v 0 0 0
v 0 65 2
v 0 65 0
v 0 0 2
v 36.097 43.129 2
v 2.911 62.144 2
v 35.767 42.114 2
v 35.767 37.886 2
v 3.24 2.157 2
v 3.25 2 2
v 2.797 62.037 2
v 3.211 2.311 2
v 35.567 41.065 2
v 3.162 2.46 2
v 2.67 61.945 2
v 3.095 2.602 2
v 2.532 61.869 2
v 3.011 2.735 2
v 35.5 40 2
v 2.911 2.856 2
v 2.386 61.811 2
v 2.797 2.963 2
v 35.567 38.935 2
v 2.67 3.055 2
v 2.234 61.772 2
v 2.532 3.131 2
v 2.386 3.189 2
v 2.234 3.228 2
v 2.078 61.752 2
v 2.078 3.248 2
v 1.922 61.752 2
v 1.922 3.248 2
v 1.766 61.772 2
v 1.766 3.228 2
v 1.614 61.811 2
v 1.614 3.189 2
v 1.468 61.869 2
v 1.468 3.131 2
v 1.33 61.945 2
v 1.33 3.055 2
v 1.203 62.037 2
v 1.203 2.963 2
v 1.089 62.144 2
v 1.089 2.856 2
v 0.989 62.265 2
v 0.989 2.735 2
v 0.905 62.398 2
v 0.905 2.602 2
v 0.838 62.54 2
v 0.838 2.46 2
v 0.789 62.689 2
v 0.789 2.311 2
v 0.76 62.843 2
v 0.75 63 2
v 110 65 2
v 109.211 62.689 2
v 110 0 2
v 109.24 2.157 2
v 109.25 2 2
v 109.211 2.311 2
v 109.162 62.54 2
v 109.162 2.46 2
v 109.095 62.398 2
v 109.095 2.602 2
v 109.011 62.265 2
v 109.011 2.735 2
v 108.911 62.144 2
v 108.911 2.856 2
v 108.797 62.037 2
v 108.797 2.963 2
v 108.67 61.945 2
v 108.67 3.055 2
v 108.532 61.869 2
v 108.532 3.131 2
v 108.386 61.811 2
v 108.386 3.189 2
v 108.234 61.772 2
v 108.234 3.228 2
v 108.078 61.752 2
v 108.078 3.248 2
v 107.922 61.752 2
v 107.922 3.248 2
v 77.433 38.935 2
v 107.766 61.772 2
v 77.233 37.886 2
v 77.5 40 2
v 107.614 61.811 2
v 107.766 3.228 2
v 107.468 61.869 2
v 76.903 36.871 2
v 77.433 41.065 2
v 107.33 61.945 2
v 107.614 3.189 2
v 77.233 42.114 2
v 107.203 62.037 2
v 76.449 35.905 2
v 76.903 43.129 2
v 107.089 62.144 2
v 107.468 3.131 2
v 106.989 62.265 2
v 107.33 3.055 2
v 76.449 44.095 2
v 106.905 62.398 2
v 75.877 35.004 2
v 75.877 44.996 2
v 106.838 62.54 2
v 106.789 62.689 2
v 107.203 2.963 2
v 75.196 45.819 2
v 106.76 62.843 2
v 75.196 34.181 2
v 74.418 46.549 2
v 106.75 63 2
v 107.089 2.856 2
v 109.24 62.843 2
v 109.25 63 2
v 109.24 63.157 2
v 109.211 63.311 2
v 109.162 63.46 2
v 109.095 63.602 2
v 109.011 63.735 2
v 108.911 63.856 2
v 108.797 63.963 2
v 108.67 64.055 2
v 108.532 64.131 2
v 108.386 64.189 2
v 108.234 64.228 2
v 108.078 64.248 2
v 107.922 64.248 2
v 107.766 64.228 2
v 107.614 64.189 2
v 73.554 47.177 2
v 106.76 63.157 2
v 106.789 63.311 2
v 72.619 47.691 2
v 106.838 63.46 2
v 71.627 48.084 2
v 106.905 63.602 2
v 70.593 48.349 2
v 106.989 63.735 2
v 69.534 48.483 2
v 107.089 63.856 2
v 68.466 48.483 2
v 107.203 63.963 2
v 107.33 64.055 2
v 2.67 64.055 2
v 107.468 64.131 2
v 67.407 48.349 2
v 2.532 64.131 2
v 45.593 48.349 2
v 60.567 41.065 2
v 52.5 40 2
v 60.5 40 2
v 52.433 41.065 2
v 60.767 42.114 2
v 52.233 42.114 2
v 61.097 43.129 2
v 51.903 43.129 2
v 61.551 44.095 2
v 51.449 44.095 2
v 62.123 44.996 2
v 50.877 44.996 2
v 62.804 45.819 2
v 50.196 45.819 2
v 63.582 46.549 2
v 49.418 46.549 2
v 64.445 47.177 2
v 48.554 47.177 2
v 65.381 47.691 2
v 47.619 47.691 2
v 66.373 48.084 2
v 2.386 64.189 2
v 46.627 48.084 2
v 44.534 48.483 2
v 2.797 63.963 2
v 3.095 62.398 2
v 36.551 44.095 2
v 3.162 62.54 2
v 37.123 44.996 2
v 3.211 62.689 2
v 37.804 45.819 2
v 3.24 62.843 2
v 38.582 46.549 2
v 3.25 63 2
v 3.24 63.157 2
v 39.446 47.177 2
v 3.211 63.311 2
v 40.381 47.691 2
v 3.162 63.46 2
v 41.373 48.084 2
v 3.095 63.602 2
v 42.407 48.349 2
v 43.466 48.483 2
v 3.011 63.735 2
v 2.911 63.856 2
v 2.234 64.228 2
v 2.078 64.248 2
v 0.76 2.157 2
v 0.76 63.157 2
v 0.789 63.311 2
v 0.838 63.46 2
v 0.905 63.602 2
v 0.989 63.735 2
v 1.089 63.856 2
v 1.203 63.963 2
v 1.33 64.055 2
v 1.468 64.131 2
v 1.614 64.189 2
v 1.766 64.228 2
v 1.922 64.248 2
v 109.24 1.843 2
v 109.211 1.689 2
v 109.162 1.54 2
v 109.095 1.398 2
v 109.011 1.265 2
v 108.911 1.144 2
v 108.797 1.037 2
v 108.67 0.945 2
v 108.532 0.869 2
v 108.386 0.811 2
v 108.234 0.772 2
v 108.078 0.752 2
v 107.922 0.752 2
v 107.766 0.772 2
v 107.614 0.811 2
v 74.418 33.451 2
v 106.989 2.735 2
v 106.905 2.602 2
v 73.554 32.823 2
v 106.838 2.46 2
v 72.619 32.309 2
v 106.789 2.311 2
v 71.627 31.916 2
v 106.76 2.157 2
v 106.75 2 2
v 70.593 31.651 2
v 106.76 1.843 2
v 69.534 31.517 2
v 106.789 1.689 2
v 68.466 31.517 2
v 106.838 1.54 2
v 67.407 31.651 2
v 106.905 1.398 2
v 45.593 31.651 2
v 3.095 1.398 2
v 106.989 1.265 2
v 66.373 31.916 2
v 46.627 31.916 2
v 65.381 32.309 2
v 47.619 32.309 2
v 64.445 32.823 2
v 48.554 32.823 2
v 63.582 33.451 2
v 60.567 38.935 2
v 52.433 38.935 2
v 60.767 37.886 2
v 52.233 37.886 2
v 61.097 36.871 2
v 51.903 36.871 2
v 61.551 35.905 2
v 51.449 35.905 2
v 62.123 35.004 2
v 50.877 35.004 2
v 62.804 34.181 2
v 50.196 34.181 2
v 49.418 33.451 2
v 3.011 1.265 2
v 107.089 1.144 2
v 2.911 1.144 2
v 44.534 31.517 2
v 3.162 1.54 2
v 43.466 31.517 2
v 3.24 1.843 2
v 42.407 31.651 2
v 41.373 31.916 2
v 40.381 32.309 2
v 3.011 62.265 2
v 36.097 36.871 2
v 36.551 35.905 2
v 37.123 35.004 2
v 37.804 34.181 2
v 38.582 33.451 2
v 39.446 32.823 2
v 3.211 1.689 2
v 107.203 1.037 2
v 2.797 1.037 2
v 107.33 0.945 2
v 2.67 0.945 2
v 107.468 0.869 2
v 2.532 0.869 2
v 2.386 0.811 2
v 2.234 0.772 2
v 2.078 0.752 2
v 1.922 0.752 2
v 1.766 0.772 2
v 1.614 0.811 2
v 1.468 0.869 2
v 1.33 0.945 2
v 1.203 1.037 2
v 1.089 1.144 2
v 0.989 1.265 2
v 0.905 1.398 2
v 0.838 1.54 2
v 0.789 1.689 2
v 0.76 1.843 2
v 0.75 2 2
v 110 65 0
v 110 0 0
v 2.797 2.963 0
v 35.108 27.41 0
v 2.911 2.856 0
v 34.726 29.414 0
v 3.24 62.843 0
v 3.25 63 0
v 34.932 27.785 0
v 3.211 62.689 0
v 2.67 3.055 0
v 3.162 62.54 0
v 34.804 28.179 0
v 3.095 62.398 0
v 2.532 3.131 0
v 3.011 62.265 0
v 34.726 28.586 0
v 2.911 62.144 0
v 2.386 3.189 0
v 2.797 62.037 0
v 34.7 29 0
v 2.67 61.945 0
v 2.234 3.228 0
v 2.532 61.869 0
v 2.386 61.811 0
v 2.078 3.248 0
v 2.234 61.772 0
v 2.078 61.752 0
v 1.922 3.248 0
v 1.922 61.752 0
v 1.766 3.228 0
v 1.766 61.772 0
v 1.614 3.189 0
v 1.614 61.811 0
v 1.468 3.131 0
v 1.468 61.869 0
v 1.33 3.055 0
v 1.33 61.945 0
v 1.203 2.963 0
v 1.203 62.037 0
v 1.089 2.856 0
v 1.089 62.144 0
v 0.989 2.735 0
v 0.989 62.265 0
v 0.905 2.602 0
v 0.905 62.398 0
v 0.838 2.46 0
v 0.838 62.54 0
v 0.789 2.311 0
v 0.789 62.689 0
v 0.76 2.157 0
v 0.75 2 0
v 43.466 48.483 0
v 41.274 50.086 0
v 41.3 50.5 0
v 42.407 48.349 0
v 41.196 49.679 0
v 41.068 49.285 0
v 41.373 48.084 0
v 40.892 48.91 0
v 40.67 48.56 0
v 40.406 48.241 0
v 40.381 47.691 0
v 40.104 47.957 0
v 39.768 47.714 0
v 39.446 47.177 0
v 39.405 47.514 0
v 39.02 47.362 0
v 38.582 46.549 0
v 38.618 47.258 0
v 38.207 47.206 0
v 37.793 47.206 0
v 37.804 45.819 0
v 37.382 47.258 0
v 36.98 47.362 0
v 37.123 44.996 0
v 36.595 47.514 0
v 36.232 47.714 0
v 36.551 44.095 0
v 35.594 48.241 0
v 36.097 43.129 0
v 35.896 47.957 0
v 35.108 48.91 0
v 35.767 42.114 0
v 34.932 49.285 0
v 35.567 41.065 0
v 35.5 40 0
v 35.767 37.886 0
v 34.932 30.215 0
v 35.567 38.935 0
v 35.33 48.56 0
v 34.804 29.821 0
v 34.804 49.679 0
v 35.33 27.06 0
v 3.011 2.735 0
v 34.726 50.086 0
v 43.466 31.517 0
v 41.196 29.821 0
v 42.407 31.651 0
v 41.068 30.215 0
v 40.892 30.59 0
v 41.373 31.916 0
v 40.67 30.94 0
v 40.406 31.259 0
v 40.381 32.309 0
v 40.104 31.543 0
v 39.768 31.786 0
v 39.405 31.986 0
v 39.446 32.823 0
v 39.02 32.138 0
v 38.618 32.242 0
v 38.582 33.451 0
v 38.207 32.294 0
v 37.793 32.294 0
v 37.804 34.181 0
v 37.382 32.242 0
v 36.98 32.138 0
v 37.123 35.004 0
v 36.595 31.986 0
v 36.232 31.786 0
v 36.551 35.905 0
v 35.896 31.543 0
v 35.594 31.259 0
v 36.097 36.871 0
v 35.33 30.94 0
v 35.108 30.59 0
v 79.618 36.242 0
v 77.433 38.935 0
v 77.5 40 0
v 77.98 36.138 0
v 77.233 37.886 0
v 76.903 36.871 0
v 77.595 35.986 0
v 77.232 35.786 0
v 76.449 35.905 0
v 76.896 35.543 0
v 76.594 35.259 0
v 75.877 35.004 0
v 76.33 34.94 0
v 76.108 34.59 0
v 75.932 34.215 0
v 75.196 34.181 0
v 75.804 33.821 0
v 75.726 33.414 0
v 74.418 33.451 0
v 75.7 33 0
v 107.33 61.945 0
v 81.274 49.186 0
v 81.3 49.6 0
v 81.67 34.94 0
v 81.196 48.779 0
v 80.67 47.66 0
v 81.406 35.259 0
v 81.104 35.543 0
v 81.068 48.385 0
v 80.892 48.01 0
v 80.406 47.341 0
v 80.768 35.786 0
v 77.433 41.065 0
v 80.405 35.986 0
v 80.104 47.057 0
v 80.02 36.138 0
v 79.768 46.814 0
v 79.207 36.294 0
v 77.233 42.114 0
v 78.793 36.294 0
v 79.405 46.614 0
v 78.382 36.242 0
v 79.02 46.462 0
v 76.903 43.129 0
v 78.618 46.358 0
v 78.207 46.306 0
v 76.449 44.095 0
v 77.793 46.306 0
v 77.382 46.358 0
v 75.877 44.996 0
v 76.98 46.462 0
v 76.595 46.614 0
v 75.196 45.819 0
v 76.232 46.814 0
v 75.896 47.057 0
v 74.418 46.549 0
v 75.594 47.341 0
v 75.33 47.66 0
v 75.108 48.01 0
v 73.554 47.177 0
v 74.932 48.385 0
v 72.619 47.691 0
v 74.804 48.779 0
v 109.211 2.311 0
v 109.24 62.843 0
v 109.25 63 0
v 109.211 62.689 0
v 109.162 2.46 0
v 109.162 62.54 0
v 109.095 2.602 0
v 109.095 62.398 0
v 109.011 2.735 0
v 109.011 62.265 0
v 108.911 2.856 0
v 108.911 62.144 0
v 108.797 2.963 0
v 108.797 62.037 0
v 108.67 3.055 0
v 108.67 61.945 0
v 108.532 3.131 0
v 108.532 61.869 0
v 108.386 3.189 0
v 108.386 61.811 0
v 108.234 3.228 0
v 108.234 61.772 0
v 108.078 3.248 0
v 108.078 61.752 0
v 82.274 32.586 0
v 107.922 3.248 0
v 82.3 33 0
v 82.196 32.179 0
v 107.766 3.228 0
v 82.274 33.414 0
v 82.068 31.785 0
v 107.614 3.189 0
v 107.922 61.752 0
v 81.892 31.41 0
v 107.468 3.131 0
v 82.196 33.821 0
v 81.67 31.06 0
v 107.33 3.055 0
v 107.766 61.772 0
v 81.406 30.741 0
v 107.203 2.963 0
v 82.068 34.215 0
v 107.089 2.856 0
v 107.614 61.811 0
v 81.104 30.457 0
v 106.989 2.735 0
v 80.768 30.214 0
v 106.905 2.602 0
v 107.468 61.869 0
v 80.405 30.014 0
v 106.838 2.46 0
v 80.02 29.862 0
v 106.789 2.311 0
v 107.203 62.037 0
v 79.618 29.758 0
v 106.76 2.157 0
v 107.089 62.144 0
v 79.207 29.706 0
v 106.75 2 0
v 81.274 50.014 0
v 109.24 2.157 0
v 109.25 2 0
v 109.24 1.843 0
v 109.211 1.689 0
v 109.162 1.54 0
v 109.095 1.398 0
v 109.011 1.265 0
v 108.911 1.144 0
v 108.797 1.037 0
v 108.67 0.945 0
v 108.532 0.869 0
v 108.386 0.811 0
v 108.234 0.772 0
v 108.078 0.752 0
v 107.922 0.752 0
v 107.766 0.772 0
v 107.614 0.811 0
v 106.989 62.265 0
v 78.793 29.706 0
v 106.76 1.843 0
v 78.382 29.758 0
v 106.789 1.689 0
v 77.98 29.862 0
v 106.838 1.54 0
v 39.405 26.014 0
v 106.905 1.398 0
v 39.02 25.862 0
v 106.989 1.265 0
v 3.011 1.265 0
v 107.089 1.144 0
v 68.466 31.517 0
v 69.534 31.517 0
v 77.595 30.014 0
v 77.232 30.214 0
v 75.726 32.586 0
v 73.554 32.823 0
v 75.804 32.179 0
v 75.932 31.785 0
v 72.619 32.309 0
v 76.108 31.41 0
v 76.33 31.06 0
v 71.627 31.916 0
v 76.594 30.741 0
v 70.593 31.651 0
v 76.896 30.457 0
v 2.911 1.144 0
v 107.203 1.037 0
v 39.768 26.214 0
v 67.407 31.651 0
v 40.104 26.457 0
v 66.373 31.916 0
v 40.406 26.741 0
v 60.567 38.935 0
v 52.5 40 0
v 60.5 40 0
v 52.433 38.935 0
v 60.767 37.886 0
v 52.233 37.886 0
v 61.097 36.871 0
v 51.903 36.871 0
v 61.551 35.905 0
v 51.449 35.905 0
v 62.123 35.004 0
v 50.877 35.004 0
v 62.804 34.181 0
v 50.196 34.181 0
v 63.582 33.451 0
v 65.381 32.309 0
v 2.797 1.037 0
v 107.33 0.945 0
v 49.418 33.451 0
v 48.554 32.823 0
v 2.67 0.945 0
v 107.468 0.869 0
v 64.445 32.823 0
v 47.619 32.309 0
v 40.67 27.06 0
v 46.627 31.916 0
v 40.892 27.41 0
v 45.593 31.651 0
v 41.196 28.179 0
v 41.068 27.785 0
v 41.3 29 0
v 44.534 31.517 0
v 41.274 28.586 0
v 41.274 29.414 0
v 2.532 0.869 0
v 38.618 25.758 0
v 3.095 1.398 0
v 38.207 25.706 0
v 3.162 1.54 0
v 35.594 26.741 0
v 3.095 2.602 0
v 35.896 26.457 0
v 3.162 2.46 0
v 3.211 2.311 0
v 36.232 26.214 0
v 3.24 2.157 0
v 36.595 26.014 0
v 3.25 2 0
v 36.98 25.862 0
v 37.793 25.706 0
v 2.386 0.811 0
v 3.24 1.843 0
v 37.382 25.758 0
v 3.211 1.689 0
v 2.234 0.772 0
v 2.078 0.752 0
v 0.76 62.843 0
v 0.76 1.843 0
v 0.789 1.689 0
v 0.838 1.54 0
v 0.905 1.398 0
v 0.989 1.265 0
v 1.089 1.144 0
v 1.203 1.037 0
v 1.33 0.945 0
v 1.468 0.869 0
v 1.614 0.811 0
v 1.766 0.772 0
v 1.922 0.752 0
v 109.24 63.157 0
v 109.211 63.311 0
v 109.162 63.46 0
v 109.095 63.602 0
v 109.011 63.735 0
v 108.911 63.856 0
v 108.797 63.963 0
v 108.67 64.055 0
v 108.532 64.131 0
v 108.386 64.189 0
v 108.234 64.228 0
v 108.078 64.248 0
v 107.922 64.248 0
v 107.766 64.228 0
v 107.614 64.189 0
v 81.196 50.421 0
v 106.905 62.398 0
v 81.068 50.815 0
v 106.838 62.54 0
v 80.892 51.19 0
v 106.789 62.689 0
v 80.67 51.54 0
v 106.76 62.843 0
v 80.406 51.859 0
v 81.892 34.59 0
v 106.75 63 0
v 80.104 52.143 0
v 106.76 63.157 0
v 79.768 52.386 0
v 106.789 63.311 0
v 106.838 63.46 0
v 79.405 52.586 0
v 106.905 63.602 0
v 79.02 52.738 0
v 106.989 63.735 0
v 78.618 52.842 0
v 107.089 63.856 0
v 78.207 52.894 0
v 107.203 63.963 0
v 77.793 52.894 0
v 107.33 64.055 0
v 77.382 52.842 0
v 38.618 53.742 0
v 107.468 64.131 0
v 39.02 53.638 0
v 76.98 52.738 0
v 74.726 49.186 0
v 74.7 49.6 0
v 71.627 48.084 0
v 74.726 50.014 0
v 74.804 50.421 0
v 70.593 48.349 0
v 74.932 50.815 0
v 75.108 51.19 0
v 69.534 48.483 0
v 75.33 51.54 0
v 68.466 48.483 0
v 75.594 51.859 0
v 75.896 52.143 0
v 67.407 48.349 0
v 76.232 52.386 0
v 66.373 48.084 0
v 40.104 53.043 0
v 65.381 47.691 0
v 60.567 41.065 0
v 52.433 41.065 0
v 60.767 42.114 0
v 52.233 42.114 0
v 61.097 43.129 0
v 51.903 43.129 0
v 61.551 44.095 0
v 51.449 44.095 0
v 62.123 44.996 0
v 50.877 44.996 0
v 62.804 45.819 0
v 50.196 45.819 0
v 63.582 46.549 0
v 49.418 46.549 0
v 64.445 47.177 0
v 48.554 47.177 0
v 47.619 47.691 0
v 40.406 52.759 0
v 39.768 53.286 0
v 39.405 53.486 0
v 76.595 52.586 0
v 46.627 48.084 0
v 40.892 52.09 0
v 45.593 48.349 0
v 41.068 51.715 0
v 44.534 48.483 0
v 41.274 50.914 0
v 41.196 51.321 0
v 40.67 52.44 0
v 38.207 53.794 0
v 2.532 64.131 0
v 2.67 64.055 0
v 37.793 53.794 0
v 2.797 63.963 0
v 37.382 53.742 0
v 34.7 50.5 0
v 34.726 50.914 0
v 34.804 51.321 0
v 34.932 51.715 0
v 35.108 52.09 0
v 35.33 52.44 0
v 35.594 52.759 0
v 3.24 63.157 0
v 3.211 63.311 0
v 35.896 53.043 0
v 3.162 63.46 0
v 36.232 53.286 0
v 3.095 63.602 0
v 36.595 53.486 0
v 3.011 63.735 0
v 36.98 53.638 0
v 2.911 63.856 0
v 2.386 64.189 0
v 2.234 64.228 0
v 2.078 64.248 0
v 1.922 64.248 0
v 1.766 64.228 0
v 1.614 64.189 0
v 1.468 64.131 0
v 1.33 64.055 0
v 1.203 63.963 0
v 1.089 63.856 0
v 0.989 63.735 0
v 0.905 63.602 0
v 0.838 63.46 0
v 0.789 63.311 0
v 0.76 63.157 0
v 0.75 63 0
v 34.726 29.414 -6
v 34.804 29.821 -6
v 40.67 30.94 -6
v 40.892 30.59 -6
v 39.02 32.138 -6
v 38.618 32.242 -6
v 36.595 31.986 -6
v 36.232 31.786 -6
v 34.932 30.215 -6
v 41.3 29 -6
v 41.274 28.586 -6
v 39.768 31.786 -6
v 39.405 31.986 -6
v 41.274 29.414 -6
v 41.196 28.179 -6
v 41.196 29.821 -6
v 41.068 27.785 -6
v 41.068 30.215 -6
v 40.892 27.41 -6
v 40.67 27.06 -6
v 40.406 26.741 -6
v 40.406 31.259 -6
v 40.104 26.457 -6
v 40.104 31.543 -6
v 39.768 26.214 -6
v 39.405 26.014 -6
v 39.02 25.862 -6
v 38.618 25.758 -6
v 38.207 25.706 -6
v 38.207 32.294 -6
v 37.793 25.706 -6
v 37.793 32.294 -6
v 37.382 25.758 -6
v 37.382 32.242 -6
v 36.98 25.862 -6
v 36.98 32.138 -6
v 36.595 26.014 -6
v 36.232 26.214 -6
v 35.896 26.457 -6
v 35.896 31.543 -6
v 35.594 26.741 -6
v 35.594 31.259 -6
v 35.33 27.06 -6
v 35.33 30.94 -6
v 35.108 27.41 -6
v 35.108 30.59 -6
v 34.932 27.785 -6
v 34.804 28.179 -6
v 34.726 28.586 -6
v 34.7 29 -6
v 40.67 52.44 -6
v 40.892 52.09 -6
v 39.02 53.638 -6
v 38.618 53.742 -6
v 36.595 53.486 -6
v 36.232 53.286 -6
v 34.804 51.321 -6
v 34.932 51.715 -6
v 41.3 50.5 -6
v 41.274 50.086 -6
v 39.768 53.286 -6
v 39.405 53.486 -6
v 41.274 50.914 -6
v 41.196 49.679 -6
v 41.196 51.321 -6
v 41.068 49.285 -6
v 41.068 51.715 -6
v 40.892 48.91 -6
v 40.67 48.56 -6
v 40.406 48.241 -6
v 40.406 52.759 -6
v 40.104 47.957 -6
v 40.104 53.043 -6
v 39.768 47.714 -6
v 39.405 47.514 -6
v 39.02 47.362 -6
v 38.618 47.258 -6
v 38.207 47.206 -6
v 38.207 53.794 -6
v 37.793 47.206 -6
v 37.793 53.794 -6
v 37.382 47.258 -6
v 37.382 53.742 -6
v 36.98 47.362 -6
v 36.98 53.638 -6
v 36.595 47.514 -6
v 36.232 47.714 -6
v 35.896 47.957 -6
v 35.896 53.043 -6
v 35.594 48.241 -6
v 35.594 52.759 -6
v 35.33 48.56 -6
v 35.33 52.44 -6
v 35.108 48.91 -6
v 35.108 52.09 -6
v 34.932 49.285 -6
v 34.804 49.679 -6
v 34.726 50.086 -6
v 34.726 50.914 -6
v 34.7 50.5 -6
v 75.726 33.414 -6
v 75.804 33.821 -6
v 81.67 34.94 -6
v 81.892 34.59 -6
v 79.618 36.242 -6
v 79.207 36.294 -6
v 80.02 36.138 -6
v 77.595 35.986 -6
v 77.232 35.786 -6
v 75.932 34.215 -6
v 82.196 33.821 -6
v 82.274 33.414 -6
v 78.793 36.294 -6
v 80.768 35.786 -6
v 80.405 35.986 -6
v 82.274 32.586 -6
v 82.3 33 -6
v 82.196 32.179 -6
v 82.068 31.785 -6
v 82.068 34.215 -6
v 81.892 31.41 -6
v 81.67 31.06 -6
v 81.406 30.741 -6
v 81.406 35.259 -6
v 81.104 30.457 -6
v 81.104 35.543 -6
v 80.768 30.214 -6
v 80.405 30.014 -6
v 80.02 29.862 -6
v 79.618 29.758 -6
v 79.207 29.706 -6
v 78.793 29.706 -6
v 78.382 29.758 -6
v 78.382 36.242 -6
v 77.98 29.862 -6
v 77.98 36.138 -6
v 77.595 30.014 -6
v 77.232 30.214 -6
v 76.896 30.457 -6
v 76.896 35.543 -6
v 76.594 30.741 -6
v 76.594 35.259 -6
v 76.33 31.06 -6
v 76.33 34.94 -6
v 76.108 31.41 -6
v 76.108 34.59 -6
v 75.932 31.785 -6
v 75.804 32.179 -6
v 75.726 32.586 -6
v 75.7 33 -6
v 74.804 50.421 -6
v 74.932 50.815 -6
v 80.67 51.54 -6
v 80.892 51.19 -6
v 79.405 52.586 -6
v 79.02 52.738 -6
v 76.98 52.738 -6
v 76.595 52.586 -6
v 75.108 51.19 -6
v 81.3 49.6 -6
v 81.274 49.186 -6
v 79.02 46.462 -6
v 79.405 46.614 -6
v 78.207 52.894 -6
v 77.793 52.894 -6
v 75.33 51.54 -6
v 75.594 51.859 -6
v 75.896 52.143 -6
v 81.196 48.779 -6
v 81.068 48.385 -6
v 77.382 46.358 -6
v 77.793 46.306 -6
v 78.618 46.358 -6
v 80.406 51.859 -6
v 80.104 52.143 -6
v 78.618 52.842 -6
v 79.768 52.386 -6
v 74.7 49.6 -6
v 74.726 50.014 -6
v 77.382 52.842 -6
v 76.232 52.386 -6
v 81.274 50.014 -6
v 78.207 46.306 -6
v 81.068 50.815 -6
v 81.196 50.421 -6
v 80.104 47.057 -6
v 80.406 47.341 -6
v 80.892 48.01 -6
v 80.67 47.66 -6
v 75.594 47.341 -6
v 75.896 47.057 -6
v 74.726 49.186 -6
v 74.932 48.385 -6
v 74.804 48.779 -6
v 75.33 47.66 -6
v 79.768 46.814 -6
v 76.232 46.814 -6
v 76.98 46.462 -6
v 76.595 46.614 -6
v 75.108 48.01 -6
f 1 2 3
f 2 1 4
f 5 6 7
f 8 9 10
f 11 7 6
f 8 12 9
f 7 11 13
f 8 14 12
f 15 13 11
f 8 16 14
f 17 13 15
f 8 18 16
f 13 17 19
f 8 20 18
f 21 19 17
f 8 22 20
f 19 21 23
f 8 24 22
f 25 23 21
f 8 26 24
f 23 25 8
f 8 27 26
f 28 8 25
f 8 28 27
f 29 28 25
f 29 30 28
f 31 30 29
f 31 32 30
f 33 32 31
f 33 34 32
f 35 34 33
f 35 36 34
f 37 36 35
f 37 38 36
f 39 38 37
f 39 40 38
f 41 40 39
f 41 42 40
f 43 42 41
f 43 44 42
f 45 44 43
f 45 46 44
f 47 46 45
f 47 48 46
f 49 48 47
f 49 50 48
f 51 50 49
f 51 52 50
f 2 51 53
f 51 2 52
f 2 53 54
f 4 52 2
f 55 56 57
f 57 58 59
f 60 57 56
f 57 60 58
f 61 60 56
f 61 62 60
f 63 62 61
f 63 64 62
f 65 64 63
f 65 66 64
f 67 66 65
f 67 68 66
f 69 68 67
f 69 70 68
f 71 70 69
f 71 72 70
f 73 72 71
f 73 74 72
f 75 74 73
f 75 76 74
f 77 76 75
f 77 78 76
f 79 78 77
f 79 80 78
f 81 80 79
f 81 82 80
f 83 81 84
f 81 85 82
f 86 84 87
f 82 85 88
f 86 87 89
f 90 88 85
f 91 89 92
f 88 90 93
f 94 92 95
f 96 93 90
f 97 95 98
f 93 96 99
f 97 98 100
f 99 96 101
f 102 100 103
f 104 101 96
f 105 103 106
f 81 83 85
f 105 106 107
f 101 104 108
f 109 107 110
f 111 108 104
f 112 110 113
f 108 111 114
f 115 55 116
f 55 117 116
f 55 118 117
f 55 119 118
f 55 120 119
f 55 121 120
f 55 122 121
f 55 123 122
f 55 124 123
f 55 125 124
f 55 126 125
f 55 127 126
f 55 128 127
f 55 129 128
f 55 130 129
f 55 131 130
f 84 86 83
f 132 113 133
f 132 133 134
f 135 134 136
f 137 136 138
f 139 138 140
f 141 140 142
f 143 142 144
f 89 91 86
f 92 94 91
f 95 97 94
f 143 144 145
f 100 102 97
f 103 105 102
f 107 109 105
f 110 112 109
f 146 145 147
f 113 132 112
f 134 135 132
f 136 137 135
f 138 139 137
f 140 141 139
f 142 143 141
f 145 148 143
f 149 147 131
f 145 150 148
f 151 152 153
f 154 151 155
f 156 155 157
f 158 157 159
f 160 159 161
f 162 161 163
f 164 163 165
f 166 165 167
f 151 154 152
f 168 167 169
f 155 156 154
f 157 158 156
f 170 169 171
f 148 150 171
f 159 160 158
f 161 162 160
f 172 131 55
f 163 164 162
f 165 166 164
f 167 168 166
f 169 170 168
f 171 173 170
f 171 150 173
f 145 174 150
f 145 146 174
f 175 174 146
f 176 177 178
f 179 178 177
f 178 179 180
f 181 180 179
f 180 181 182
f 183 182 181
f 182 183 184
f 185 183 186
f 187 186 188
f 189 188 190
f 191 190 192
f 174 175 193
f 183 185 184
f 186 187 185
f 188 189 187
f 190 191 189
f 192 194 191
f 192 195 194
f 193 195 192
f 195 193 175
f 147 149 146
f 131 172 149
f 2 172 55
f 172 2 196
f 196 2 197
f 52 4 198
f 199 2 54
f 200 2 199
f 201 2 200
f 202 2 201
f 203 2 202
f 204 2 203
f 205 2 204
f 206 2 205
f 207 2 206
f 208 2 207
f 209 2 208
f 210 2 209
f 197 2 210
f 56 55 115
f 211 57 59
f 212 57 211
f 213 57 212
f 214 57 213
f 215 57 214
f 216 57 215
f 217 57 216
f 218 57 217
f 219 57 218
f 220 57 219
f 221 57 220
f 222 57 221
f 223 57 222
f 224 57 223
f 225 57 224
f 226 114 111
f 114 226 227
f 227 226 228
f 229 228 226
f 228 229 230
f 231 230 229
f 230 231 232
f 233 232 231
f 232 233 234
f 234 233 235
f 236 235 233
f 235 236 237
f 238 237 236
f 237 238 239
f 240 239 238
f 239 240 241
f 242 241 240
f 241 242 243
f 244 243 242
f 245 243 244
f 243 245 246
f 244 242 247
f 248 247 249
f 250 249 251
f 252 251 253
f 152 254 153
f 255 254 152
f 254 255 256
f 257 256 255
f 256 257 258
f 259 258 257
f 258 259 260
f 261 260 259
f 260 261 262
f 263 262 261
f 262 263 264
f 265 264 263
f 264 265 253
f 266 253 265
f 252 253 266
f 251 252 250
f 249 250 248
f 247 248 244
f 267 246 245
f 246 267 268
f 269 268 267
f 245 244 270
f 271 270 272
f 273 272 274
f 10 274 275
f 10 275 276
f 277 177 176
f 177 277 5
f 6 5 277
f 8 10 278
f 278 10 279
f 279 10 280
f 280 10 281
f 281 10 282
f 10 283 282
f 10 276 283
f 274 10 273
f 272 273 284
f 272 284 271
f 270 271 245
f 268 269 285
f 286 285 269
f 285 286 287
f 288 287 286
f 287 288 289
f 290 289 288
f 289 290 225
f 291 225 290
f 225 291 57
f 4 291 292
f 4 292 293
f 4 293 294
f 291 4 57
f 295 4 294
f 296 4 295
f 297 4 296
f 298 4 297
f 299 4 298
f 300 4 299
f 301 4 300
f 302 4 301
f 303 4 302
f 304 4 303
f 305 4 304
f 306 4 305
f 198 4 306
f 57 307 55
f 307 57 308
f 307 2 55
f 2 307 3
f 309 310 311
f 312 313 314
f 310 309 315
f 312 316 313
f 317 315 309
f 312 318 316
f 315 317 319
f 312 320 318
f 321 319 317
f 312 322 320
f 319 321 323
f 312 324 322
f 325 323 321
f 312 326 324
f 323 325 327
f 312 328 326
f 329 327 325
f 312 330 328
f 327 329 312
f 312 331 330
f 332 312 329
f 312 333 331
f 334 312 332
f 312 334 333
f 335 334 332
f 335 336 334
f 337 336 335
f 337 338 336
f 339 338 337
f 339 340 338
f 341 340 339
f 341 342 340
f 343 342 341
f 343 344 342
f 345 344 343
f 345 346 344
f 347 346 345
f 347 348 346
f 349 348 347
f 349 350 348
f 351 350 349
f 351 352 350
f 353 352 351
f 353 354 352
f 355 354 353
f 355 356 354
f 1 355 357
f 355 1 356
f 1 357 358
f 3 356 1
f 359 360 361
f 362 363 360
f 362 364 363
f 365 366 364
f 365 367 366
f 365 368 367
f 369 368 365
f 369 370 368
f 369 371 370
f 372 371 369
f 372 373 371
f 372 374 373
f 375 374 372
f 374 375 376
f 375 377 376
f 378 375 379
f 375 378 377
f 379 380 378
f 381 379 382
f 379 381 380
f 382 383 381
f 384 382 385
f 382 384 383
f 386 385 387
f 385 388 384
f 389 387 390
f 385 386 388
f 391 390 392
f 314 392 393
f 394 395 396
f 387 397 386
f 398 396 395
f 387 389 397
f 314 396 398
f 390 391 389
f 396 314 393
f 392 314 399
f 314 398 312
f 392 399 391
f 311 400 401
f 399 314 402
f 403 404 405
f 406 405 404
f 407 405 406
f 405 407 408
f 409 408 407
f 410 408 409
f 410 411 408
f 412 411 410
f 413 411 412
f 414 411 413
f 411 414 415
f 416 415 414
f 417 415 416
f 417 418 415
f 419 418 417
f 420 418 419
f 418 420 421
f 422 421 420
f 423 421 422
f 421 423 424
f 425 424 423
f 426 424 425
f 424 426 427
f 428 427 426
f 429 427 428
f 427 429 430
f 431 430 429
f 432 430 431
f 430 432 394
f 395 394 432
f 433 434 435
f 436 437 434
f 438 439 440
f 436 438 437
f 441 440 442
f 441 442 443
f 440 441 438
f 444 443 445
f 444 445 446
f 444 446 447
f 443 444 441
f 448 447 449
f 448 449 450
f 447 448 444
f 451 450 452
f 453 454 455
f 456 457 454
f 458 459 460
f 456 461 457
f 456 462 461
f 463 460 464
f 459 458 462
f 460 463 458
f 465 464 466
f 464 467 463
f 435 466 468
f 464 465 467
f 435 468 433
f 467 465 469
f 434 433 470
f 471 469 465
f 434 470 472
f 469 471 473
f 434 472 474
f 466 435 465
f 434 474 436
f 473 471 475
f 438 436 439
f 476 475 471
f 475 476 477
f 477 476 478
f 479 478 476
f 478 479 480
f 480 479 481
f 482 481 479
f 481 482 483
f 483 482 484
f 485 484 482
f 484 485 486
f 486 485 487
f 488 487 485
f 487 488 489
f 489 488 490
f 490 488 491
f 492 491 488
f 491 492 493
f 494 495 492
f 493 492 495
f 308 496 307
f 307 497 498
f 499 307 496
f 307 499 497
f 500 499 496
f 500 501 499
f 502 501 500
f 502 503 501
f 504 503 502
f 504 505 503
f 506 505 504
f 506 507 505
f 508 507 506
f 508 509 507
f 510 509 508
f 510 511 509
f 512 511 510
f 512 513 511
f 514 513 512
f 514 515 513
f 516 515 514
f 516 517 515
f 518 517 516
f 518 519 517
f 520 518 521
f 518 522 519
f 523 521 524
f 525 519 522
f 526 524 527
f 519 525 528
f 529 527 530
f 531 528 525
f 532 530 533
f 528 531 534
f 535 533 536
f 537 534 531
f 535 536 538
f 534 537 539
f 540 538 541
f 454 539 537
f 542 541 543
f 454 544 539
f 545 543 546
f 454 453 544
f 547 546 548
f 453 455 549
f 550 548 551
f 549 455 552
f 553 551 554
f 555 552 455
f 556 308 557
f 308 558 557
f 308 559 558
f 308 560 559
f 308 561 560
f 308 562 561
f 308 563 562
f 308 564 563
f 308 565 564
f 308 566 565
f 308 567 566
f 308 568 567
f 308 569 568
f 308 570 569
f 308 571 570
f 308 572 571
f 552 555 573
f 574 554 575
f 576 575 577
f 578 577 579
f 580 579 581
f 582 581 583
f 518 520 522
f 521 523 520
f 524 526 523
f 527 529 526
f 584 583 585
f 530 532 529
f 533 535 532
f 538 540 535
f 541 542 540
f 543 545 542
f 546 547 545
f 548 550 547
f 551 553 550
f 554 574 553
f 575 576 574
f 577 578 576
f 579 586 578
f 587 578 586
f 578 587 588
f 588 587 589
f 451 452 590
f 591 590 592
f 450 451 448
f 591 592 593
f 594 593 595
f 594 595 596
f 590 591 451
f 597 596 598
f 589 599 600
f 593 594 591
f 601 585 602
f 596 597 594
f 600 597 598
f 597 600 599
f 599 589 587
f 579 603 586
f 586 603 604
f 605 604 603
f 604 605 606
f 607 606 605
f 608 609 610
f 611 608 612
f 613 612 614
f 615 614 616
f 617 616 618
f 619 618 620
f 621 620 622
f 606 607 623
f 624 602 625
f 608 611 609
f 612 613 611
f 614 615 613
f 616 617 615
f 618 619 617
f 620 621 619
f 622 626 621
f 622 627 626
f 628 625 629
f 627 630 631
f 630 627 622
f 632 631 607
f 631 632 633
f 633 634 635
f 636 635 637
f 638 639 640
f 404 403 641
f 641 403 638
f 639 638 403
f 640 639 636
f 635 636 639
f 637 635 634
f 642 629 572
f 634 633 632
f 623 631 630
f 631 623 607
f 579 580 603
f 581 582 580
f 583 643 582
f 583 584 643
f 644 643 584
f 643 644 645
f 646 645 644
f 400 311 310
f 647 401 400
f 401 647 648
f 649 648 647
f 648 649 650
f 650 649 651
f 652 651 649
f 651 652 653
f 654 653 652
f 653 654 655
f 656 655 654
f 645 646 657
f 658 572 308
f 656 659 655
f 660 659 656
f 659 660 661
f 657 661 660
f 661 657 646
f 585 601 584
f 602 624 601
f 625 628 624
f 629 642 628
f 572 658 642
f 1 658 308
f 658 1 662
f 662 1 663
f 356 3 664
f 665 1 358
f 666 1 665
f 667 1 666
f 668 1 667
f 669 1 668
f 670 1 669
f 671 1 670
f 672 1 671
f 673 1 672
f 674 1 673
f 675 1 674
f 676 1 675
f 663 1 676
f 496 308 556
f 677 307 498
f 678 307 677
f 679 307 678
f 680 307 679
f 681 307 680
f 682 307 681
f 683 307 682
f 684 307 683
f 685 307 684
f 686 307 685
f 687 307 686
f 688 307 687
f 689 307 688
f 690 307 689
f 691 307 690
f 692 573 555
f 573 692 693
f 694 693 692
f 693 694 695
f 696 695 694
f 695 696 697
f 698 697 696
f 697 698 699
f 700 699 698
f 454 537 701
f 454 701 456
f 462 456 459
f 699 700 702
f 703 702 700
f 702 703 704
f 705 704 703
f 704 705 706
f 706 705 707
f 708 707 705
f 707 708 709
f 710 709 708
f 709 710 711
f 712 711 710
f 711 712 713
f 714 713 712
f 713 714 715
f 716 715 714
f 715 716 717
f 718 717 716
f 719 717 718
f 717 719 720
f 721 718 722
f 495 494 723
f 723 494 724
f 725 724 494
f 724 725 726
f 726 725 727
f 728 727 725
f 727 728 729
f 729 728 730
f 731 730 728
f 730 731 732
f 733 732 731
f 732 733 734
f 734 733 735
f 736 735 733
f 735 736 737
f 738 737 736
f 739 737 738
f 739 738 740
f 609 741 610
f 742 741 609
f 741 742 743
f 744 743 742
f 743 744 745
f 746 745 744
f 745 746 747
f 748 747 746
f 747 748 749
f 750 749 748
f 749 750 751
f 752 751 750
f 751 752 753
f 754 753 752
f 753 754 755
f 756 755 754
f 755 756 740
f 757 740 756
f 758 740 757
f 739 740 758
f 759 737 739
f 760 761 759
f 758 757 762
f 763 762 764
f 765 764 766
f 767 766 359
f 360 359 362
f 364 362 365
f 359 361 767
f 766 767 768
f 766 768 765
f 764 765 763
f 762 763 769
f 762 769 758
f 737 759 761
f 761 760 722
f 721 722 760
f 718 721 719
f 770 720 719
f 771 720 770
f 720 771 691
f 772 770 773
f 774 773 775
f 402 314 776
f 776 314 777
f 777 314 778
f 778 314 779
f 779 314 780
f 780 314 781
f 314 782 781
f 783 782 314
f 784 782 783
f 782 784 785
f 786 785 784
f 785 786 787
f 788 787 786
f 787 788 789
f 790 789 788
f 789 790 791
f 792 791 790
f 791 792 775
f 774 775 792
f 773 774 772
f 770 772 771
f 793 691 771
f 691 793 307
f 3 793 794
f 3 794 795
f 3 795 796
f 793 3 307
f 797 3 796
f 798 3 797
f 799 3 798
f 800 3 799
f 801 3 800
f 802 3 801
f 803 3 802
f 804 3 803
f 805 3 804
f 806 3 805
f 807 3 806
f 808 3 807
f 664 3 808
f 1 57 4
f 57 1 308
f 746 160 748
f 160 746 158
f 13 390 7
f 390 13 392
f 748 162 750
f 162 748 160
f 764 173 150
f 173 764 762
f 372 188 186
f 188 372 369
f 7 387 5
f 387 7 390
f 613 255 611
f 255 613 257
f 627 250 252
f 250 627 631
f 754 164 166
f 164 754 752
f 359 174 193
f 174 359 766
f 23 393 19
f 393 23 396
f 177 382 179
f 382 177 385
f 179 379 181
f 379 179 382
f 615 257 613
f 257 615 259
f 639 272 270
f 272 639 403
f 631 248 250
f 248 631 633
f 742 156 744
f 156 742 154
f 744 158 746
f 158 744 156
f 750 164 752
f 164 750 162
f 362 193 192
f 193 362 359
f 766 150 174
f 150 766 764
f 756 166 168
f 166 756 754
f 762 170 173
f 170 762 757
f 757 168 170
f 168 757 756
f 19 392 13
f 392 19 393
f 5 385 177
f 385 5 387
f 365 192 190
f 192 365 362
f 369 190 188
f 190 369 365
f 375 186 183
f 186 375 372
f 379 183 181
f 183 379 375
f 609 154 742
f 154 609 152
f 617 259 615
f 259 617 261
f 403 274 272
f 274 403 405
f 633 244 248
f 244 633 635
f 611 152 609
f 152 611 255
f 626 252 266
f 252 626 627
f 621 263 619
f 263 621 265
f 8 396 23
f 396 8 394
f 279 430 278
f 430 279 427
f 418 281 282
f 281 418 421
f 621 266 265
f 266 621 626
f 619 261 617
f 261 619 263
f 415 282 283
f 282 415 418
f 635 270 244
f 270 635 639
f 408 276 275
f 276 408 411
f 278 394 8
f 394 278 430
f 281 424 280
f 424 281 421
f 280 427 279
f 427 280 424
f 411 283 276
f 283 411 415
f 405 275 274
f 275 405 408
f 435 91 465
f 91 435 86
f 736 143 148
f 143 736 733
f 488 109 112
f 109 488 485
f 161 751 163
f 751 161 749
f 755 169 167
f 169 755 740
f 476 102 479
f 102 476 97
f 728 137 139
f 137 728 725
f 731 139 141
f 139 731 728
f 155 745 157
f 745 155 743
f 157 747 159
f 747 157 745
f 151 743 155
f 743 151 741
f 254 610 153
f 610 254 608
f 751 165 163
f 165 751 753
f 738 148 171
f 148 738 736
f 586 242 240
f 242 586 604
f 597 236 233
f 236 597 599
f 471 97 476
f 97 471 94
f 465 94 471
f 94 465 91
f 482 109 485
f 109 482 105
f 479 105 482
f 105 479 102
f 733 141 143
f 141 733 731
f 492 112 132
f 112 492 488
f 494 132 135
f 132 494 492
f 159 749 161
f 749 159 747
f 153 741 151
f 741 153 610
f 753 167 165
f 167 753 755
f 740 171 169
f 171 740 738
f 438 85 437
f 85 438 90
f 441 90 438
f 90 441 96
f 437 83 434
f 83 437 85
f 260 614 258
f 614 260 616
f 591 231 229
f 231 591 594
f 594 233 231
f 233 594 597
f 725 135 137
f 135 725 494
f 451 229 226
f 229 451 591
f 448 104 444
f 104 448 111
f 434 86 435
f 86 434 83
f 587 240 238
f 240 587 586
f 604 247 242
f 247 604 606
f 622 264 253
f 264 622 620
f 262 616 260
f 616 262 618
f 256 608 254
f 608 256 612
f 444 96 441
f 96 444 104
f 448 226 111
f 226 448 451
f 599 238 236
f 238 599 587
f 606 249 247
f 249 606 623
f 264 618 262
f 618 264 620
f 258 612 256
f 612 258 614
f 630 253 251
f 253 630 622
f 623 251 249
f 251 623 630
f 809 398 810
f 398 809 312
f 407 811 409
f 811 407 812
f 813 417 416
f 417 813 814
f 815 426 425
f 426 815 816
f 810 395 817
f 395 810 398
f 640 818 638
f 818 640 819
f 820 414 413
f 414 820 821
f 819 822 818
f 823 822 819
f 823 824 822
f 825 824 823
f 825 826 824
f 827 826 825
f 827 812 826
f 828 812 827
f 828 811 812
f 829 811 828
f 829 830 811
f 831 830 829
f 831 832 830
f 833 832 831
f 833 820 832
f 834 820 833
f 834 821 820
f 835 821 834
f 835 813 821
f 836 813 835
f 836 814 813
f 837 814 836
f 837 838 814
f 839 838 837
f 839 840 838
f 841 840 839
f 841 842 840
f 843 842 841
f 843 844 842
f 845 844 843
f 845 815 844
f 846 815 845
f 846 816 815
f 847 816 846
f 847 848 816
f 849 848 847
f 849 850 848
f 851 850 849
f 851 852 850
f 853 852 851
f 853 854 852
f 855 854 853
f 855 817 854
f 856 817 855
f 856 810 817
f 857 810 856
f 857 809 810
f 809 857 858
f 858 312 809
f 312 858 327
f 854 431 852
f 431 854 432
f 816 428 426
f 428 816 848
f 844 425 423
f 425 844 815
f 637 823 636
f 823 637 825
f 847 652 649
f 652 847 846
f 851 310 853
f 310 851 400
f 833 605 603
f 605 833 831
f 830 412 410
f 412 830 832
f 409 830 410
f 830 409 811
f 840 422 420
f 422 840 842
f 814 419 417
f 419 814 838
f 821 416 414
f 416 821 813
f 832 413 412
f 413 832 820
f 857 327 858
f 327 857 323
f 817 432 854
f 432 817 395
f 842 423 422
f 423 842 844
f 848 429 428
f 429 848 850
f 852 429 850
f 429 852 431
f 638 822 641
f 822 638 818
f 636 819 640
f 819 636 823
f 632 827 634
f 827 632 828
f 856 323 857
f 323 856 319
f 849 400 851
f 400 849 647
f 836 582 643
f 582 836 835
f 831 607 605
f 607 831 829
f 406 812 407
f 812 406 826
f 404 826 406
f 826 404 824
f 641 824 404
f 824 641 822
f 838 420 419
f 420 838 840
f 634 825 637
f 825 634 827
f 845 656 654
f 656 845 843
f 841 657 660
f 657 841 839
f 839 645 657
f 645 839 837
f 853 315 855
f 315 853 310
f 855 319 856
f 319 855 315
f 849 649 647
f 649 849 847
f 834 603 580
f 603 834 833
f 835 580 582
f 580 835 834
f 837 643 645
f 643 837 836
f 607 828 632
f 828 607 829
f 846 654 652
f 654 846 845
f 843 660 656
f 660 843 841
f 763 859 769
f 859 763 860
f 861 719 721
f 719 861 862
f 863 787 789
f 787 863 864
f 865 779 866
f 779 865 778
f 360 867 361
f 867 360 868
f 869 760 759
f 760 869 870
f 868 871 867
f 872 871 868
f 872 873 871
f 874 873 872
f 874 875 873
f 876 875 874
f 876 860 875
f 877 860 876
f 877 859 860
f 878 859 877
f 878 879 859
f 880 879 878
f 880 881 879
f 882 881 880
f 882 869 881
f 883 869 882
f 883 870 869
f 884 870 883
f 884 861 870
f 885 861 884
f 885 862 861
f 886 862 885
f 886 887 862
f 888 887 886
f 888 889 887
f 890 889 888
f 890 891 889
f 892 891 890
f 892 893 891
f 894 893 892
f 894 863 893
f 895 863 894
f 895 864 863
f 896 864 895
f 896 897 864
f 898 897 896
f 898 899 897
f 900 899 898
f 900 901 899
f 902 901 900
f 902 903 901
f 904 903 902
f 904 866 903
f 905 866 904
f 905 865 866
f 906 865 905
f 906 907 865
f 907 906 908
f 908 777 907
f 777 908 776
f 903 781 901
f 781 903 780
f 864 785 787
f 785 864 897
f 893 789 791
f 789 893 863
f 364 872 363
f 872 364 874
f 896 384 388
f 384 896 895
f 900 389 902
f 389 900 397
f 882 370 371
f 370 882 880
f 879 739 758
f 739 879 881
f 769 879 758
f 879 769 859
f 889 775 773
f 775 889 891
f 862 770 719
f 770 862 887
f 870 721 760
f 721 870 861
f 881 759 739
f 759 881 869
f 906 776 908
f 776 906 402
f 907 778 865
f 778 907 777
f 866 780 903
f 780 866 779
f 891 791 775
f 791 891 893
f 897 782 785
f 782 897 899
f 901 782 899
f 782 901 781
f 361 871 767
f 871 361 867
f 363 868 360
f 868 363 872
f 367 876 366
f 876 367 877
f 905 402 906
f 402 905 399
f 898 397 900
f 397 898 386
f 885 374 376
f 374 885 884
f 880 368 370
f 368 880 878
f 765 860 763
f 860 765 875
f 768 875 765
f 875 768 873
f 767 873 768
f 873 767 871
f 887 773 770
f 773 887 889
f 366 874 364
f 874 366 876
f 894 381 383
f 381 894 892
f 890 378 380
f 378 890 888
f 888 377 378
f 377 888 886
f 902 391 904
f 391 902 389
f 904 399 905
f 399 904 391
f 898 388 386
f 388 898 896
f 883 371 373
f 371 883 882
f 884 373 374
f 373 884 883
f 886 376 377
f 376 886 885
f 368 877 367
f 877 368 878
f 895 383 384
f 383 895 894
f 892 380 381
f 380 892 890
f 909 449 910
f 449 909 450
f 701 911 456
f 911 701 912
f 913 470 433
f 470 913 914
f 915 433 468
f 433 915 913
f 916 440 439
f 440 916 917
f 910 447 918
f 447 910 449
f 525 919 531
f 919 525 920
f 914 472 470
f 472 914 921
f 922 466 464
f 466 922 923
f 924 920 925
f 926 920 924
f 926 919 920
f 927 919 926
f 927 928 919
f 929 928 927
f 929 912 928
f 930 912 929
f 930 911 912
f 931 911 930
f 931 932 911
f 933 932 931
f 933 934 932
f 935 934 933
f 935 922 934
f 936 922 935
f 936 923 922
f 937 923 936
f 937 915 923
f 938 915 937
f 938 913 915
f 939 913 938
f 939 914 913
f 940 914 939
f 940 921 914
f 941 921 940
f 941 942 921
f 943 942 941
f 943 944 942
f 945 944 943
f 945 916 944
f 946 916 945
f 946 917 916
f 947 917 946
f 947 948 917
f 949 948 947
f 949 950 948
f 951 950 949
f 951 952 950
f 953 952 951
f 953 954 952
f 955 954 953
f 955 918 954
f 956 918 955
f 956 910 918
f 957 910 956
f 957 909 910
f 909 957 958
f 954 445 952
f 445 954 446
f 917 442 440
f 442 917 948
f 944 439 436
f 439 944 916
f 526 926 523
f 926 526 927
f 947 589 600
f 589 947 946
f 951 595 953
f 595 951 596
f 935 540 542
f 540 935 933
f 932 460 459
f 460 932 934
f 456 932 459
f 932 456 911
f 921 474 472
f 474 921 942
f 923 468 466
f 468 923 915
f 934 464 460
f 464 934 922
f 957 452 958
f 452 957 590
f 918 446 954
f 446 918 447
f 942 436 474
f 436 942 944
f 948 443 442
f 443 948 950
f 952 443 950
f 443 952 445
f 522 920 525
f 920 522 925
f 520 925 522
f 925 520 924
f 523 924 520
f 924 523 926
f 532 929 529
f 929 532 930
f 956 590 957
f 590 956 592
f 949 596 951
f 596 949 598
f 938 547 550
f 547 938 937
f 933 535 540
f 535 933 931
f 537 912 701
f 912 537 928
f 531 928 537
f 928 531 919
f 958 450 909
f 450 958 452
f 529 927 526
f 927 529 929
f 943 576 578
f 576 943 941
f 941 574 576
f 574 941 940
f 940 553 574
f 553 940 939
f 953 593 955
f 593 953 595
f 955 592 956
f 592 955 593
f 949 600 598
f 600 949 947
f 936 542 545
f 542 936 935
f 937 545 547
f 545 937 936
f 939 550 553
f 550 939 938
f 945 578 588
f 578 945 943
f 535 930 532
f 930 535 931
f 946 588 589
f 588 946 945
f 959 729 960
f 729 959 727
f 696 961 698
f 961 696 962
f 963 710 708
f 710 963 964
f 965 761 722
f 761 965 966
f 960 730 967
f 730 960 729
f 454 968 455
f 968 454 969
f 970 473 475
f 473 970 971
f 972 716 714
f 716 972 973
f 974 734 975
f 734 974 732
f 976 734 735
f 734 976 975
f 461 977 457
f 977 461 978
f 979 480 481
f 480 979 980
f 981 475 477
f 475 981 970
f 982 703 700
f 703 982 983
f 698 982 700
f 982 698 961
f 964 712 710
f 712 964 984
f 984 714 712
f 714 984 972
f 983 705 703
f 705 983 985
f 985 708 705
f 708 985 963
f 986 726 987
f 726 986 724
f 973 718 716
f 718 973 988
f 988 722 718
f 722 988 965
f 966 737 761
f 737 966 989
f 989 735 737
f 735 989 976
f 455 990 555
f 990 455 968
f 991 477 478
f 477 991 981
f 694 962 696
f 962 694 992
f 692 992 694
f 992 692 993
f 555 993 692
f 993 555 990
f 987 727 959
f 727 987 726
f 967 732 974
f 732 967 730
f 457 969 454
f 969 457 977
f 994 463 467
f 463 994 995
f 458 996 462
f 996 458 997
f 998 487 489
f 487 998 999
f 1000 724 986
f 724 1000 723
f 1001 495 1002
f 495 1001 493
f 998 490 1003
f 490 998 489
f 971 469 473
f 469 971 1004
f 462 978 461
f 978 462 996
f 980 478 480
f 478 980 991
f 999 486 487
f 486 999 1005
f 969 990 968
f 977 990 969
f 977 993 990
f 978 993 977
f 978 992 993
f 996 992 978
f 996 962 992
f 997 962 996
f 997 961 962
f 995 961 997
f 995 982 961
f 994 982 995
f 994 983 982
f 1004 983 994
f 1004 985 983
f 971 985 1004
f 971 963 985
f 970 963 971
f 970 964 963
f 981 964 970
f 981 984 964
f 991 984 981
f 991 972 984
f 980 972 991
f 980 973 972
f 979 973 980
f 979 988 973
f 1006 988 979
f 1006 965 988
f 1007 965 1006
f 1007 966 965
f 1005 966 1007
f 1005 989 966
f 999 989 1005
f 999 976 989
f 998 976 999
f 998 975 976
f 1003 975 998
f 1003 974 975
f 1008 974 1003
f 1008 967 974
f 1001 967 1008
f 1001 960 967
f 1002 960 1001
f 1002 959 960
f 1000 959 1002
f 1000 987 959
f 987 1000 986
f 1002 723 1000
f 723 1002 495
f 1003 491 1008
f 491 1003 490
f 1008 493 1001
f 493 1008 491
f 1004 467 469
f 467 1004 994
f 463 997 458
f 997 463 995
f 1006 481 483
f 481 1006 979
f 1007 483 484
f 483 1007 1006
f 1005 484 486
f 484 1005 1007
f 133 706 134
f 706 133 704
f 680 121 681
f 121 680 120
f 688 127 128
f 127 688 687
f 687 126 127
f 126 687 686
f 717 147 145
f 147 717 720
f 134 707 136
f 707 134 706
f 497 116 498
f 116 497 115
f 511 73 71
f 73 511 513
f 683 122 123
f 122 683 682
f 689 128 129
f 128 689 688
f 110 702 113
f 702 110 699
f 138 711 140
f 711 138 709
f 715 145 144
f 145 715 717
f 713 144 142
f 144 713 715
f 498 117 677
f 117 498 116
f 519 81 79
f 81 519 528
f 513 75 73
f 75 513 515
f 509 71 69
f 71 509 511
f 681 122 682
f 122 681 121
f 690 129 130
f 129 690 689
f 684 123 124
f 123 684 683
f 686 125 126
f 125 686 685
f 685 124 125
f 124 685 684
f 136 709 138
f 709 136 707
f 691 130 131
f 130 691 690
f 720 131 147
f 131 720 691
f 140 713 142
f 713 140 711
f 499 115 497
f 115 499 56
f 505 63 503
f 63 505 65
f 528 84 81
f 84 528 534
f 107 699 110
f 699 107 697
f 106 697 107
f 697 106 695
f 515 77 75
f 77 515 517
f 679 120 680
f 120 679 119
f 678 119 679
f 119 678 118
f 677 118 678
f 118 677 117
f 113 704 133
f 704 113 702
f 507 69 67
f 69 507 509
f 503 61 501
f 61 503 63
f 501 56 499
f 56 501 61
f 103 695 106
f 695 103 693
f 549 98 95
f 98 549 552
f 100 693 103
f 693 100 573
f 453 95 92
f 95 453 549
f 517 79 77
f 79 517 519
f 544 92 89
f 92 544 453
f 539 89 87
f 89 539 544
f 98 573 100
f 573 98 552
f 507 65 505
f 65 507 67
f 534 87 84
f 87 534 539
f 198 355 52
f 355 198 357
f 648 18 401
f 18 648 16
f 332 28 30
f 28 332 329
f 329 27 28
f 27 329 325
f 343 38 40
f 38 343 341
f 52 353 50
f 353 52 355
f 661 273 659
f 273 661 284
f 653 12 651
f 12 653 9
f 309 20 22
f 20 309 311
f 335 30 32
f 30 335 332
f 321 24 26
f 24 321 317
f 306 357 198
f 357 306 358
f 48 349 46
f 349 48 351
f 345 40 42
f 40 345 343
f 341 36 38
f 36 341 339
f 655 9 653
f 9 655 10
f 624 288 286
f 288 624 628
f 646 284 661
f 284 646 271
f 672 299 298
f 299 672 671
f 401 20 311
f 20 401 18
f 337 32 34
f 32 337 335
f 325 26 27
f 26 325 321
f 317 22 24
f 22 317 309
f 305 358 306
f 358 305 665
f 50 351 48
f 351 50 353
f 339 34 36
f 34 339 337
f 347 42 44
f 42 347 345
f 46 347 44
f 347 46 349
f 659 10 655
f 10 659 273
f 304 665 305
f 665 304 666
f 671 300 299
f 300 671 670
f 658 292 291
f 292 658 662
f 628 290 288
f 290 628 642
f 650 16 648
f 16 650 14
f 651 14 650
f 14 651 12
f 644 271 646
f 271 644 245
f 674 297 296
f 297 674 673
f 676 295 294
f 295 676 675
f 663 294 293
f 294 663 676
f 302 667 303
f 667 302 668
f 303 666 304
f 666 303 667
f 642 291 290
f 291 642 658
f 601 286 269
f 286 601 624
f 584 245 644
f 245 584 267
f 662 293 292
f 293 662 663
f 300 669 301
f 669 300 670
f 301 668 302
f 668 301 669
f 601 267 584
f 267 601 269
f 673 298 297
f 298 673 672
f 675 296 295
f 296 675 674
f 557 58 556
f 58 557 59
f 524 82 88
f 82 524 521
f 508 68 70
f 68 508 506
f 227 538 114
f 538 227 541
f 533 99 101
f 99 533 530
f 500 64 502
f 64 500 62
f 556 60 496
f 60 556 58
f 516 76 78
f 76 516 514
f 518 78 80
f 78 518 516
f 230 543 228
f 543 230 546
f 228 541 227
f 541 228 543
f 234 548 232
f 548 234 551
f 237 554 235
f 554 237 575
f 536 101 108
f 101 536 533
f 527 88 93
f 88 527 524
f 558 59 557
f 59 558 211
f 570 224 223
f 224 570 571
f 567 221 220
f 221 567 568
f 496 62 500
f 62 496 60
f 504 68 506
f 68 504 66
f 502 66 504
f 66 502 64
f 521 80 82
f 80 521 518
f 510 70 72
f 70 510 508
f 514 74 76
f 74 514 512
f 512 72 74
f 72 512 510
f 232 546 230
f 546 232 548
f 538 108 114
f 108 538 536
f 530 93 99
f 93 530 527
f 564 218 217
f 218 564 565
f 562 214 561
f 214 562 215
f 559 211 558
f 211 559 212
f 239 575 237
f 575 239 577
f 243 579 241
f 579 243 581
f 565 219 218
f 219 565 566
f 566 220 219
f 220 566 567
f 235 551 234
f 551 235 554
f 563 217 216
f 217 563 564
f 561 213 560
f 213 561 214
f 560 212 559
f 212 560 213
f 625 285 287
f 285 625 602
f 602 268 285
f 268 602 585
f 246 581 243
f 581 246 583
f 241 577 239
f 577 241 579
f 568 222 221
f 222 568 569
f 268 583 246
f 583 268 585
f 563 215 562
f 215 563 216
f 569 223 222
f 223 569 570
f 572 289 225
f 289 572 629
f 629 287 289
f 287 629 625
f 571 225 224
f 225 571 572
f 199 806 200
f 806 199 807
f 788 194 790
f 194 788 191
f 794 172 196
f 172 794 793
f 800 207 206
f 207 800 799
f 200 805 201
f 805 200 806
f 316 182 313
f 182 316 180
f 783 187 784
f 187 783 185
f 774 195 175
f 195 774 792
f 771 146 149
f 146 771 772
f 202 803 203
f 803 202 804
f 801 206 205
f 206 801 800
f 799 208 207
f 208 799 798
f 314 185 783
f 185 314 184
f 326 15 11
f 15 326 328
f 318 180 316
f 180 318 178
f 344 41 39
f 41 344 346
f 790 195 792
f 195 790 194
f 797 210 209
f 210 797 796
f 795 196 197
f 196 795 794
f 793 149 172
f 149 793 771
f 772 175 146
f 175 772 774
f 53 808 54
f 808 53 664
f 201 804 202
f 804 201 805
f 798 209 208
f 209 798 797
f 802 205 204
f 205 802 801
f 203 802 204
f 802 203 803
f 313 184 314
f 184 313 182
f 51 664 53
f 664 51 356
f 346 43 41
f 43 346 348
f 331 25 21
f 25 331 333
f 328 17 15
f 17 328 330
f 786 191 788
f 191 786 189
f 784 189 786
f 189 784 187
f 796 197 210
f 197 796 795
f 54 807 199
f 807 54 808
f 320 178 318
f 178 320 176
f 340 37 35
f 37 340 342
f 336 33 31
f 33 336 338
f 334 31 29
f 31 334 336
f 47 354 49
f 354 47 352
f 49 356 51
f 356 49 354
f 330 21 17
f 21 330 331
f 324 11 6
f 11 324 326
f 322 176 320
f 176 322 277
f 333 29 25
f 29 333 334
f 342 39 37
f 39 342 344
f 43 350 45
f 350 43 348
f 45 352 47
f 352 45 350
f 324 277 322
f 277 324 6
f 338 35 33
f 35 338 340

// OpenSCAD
// ranger box lib V2
$fn=50;
bw=110;      // box width 
bl=65;      // box length
bh=2;      // box height minimum around 20
pr=4;       // post radius, 3 is ok
phr=1.25;   // post hole radius 1.25 ==> M2.5
bedh=4;
sm=3;       // corner rounding (sphere 2 is OK)
// 
hw=bw/2;
hl=bl/2;

difference() {
  union() {
    difference() {
      cube([bw,bl,bh]);
    
      
        // SR-504 holes
        translate([44,40,0]) cylinder(d=17,h=4);
        translate([69,40,0]) cylinder(d=17,h=4);
        // LCD cutout
        //translate([22,62,0]) cube([71.1, 24.2, 4]);
    }
    // Standoffs for LCD 
    translate([38,29,-6]) cylinder(d=6.6,h=6);
    translate([38,50.5,-6]) cylinder(d=6.6,h=6);
    
    translate([79,33,-6]) cylinder(d=6.6,h=6);
    translate([78,49.6,-6]) cylinder(d=6.6,h=6);
  }
  // screw holes
  translate ([bw-2,bl-2]) cylinder(r=phr,h=4);
  translate ([2,2]) cylinder(r=phr,h=4);
  translate ([bw-2,2]) cylinder(r=phr,h=4);
  translate ([2,bl-2]) cylinder(r=phr,h=4);
}
